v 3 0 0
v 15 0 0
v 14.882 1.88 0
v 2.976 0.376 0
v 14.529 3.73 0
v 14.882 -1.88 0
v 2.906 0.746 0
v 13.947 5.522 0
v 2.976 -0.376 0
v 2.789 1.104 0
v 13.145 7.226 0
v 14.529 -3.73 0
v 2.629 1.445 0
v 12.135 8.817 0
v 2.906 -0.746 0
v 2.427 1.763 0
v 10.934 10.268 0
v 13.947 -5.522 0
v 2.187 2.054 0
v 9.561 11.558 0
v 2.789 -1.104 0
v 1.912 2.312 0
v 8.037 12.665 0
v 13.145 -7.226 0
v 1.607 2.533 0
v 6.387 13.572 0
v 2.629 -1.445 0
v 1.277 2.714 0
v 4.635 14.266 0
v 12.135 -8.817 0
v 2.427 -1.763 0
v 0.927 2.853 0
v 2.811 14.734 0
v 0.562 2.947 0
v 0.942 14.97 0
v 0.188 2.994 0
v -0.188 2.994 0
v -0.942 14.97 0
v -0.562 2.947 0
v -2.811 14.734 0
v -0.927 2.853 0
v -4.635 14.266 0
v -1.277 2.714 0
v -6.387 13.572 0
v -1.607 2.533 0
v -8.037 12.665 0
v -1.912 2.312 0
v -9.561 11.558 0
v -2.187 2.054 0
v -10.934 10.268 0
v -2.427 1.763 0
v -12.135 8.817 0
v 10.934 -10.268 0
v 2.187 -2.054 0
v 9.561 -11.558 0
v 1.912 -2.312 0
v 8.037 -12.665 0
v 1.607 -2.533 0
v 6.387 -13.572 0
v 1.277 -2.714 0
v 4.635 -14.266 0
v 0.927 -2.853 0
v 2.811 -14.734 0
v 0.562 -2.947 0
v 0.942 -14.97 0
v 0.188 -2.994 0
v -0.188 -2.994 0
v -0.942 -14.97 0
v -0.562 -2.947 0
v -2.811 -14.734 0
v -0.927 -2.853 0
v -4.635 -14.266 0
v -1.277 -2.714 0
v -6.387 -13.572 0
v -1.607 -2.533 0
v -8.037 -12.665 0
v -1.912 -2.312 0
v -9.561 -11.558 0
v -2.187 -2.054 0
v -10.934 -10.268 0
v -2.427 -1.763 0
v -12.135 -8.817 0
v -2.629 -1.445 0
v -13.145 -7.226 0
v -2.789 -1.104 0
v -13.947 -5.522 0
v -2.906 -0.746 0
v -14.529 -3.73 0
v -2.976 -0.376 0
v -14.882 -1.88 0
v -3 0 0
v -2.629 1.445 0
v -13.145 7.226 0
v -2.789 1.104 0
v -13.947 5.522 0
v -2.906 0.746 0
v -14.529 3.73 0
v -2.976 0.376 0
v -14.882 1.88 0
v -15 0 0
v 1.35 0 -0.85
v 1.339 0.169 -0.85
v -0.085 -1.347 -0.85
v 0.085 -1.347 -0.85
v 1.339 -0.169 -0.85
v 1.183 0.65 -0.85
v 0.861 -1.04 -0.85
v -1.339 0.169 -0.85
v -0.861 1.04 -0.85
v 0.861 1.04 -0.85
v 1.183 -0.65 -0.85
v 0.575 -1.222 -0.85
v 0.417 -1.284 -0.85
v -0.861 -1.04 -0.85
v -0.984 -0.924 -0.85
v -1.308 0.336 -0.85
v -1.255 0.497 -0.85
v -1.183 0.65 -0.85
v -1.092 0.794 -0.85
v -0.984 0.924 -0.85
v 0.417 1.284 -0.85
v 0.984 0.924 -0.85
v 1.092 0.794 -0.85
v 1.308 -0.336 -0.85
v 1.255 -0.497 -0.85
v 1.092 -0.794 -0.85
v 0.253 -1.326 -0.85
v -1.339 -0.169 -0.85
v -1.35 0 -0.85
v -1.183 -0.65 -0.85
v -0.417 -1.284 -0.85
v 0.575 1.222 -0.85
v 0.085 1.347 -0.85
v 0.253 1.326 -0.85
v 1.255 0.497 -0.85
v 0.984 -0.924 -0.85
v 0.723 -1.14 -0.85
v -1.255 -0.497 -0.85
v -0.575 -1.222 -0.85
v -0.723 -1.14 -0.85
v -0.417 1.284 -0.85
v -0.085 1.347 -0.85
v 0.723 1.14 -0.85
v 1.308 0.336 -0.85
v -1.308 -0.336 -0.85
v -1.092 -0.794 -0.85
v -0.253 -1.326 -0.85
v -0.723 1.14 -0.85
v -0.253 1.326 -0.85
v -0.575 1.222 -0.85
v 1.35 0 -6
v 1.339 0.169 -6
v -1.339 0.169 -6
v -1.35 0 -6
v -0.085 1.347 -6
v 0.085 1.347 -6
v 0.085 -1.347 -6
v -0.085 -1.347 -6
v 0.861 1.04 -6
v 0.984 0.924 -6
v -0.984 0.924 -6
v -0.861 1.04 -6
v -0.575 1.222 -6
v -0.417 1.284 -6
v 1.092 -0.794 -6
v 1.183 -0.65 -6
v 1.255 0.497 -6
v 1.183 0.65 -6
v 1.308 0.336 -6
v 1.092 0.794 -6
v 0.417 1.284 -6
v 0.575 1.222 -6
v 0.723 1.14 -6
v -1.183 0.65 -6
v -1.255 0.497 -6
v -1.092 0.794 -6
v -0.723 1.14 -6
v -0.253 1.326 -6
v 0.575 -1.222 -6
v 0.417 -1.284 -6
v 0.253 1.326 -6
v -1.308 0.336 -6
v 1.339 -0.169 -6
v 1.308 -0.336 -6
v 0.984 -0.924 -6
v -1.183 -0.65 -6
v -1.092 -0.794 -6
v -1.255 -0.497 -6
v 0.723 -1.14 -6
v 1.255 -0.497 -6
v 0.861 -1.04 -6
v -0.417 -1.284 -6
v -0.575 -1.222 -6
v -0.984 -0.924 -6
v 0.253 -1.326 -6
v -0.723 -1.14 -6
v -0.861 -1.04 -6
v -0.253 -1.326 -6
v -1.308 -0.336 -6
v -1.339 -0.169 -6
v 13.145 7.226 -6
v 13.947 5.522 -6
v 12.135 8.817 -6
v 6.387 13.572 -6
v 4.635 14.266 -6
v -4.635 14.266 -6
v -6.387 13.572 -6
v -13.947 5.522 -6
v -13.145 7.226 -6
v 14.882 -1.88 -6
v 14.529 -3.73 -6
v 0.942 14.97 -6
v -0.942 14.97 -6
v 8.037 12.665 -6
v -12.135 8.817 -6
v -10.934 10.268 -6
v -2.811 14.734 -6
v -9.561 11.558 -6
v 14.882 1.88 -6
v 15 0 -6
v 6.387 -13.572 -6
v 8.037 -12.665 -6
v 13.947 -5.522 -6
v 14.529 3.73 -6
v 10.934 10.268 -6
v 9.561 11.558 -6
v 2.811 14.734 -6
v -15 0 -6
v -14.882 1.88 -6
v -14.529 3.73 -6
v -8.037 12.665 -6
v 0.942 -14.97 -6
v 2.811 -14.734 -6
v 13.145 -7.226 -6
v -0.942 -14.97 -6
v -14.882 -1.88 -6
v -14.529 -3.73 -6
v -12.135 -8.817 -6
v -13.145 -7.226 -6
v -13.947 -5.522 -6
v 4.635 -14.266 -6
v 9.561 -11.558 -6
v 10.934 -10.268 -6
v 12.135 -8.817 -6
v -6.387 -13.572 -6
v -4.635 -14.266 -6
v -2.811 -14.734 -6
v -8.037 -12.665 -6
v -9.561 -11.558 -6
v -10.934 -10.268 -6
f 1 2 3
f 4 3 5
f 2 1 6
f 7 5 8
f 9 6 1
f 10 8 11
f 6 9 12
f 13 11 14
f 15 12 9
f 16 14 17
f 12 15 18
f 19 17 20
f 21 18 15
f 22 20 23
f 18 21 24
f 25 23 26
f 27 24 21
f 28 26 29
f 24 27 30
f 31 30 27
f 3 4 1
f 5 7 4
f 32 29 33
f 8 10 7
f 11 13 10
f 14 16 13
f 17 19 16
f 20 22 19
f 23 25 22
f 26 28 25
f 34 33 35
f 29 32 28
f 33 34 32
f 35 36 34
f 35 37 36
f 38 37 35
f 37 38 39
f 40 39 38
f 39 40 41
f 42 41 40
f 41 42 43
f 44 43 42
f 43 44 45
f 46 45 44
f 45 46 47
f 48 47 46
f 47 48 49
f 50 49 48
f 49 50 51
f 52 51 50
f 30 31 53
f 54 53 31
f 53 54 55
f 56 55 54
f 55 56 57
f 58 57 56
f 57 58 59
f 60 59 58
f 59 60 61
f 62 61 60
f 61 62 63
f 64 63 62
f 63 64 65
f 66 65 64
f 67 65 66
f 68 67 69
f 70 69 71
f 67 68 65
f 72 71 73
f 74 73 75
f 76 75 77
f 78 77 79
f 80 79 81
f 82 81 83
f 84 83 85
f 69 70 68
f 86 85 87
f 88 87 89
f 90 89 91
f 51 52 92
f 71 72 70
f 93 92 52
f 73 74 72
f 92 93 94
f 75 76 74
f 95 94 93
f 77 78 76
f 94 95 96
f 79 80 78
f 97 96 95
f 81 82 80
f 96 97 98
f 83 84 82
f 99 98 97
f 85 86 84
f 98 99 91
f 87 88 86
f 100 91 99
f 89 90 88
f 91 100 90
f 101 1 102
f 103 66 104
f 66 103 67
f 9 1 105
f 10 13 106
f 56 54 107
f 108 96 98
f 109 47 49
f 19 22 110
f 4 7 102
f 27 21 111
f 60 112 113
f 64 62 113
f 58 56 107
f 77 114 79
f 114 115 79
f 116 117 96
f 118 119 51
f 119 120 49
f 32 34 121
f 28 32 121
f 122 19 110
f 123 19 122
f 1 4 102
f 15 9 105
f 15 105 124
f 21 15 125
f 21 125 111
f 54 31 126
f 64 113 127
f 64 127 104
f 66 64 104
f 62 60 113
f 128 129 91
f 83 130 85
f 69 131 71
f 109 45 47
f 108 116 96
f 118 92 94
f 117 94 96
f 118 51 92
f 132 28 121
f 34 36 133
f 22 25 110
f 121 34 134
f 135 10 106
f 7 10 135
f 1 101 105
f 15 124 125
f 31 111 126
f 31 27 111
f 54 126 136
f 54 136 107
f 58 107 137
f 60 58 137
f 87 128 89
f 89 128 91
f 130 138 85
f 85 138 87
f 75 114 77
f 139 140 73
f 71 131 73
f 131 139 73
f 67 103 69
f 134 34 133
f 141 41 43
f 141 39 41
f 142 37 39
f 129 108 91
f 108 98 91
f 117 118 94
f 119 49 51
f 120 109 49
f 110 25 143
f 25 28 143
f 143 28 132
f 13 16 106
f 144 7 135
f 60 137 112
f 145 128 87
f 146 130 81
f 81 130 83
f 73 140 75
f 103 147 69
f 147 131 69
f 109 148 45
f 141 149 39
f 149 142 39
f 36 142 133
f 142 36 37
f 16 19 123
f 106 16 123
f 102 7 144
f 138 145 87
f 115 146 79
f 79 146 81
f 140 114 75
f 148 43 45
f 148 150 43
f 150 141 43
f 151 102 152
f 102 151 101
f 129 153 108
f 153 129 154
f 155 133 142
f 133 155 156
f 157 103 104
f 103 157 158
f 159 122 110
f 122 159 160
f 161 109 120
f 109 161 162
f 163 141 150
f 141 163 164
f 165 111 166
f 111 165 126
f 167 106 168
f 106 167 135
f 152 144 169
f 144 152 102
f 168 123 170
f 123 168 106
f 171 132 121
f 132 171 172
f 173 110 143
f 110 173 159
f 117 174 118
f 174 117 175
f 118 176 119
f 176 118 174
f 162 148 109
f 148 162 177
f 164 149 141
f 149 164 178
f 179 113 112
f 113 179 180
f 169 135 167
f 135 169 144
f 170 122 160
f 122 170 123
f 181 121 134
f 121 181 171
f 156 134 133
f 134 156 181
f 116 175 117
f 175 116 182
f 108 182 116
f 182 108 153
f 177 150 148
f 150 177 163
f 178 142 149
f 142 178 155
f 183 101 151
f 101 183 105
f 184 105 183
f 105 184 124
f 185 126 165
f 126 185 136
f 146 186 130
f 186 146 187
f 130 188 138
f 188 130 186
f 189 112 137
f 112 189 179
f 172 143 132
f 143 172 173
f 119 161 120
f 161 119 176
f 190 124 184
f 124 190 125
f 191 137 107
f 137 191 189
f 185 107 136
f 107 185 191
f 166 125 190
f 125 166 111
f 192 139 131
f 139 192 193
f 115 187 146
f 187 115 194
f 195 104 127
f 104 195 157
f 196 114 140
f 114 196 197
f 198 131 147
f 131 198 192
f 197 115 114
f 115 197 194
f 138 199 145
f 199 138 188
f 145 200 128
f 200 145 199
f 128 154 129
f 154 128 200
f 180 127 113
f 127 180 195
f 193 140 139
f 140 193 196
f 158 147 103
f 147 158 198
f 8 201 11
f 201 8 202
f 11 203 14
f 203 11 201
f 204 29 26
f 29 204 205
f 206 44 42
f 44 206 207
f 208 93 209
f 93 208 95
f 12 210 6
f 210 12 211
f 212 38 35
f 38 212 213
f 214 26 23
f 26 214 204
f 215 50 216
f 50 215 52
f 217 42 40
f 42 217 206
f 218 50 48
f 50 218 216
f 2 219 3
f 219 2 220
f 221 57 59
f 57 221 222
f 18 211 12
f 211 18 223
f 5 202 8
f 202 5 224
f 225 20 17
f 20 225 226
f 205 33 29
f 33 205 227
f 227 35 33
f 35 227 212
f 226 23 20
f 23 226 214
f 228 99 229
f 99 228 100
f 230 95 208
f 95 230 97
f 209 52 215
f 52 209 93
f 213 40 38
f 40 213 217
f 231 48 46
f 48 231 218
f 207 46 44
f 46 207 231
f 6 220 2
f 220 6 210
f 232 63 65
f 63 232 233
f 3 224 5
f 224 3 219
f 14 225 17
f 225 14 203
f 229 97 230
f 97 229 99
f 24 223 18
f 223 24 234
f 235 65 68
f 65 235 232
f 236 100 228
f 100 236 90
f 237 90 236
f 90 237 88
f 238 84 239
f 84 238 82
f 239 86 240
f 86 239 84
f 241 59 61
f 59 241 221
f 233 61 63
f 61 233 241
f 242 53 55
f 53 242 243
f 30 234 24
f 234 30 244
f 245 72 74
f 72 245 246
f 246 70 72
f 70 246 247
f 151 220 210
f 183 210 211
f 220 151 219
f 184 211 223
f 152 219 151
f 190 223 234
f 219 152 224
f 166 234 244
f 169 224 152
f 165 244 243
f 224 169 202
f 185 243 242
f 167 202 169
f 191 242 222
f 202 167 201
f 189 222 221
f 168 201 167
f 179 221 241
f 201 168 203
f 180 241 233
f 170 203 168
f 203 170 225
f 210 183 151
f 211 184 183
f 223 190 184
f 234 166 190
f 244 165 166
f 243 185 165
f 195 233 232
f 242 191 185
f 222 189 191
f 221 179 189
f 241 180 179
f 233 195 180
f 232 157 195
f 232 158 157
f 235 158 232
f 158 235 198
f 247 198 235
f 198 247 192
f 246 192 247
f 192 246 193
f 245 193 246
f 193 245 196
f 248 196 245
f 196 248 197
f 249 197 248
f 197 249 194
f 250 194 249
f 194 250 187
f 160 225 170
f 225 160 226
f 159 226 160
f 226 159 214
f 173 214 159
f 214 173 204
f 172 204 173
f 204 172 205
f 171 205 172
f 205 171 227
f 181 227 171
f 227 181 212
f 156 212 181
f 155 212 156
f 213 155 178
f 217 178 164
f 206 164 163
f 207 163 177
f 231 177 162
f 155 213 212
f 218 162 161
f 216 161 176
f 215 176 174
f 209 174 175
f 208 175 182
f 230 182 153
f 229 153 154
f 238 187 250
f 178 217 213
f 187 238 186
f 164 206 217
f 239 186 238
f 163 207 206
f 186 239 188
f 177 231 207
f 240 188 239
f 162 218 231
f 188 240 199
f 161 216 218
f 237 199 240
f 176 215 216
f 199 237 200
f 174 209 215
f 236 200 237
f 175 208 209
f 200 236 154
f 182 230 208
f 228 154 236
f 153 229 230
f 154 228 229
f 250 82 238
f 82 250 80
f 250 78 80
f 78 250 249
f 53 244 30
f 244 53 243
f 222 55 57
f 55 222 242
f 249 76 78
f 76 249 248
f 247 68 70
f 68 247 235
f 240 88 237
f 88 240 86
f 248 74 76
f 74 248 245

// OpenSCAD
$fn = 50;


difference() {
	union() {
		translate(v = [0, 0, -6.0000000000]) {
			cylinder(h = 6, r = 15.0000000000);
		}
	}
	union() {
		translate(v = [0, 0, 0]) {
			rotate(a = [0, 0, 0]) {
				difference() {
					union() {
						translate(v = [0, 0, -9.0000000000]) {
							cylinder(h = 9, r = 1.0000000000);
						}
						translate(v = [0, 0, -0.8500000000]) {
							cylinder(h = 0.8500000000, r1 = 1.3500000000, r2 = 3.0000000000);
						}
						translate(v = [0, 0, -9.0000000000]) {
							cylinder(h = 9, r = 1.3500000000);
						}
						translate(v = [0, 0, -9.0000000000]) {
							cylinder(h = 9, r = 1.0000000000);
						}
					}
					union();
				}
			}
		}
	}
}
